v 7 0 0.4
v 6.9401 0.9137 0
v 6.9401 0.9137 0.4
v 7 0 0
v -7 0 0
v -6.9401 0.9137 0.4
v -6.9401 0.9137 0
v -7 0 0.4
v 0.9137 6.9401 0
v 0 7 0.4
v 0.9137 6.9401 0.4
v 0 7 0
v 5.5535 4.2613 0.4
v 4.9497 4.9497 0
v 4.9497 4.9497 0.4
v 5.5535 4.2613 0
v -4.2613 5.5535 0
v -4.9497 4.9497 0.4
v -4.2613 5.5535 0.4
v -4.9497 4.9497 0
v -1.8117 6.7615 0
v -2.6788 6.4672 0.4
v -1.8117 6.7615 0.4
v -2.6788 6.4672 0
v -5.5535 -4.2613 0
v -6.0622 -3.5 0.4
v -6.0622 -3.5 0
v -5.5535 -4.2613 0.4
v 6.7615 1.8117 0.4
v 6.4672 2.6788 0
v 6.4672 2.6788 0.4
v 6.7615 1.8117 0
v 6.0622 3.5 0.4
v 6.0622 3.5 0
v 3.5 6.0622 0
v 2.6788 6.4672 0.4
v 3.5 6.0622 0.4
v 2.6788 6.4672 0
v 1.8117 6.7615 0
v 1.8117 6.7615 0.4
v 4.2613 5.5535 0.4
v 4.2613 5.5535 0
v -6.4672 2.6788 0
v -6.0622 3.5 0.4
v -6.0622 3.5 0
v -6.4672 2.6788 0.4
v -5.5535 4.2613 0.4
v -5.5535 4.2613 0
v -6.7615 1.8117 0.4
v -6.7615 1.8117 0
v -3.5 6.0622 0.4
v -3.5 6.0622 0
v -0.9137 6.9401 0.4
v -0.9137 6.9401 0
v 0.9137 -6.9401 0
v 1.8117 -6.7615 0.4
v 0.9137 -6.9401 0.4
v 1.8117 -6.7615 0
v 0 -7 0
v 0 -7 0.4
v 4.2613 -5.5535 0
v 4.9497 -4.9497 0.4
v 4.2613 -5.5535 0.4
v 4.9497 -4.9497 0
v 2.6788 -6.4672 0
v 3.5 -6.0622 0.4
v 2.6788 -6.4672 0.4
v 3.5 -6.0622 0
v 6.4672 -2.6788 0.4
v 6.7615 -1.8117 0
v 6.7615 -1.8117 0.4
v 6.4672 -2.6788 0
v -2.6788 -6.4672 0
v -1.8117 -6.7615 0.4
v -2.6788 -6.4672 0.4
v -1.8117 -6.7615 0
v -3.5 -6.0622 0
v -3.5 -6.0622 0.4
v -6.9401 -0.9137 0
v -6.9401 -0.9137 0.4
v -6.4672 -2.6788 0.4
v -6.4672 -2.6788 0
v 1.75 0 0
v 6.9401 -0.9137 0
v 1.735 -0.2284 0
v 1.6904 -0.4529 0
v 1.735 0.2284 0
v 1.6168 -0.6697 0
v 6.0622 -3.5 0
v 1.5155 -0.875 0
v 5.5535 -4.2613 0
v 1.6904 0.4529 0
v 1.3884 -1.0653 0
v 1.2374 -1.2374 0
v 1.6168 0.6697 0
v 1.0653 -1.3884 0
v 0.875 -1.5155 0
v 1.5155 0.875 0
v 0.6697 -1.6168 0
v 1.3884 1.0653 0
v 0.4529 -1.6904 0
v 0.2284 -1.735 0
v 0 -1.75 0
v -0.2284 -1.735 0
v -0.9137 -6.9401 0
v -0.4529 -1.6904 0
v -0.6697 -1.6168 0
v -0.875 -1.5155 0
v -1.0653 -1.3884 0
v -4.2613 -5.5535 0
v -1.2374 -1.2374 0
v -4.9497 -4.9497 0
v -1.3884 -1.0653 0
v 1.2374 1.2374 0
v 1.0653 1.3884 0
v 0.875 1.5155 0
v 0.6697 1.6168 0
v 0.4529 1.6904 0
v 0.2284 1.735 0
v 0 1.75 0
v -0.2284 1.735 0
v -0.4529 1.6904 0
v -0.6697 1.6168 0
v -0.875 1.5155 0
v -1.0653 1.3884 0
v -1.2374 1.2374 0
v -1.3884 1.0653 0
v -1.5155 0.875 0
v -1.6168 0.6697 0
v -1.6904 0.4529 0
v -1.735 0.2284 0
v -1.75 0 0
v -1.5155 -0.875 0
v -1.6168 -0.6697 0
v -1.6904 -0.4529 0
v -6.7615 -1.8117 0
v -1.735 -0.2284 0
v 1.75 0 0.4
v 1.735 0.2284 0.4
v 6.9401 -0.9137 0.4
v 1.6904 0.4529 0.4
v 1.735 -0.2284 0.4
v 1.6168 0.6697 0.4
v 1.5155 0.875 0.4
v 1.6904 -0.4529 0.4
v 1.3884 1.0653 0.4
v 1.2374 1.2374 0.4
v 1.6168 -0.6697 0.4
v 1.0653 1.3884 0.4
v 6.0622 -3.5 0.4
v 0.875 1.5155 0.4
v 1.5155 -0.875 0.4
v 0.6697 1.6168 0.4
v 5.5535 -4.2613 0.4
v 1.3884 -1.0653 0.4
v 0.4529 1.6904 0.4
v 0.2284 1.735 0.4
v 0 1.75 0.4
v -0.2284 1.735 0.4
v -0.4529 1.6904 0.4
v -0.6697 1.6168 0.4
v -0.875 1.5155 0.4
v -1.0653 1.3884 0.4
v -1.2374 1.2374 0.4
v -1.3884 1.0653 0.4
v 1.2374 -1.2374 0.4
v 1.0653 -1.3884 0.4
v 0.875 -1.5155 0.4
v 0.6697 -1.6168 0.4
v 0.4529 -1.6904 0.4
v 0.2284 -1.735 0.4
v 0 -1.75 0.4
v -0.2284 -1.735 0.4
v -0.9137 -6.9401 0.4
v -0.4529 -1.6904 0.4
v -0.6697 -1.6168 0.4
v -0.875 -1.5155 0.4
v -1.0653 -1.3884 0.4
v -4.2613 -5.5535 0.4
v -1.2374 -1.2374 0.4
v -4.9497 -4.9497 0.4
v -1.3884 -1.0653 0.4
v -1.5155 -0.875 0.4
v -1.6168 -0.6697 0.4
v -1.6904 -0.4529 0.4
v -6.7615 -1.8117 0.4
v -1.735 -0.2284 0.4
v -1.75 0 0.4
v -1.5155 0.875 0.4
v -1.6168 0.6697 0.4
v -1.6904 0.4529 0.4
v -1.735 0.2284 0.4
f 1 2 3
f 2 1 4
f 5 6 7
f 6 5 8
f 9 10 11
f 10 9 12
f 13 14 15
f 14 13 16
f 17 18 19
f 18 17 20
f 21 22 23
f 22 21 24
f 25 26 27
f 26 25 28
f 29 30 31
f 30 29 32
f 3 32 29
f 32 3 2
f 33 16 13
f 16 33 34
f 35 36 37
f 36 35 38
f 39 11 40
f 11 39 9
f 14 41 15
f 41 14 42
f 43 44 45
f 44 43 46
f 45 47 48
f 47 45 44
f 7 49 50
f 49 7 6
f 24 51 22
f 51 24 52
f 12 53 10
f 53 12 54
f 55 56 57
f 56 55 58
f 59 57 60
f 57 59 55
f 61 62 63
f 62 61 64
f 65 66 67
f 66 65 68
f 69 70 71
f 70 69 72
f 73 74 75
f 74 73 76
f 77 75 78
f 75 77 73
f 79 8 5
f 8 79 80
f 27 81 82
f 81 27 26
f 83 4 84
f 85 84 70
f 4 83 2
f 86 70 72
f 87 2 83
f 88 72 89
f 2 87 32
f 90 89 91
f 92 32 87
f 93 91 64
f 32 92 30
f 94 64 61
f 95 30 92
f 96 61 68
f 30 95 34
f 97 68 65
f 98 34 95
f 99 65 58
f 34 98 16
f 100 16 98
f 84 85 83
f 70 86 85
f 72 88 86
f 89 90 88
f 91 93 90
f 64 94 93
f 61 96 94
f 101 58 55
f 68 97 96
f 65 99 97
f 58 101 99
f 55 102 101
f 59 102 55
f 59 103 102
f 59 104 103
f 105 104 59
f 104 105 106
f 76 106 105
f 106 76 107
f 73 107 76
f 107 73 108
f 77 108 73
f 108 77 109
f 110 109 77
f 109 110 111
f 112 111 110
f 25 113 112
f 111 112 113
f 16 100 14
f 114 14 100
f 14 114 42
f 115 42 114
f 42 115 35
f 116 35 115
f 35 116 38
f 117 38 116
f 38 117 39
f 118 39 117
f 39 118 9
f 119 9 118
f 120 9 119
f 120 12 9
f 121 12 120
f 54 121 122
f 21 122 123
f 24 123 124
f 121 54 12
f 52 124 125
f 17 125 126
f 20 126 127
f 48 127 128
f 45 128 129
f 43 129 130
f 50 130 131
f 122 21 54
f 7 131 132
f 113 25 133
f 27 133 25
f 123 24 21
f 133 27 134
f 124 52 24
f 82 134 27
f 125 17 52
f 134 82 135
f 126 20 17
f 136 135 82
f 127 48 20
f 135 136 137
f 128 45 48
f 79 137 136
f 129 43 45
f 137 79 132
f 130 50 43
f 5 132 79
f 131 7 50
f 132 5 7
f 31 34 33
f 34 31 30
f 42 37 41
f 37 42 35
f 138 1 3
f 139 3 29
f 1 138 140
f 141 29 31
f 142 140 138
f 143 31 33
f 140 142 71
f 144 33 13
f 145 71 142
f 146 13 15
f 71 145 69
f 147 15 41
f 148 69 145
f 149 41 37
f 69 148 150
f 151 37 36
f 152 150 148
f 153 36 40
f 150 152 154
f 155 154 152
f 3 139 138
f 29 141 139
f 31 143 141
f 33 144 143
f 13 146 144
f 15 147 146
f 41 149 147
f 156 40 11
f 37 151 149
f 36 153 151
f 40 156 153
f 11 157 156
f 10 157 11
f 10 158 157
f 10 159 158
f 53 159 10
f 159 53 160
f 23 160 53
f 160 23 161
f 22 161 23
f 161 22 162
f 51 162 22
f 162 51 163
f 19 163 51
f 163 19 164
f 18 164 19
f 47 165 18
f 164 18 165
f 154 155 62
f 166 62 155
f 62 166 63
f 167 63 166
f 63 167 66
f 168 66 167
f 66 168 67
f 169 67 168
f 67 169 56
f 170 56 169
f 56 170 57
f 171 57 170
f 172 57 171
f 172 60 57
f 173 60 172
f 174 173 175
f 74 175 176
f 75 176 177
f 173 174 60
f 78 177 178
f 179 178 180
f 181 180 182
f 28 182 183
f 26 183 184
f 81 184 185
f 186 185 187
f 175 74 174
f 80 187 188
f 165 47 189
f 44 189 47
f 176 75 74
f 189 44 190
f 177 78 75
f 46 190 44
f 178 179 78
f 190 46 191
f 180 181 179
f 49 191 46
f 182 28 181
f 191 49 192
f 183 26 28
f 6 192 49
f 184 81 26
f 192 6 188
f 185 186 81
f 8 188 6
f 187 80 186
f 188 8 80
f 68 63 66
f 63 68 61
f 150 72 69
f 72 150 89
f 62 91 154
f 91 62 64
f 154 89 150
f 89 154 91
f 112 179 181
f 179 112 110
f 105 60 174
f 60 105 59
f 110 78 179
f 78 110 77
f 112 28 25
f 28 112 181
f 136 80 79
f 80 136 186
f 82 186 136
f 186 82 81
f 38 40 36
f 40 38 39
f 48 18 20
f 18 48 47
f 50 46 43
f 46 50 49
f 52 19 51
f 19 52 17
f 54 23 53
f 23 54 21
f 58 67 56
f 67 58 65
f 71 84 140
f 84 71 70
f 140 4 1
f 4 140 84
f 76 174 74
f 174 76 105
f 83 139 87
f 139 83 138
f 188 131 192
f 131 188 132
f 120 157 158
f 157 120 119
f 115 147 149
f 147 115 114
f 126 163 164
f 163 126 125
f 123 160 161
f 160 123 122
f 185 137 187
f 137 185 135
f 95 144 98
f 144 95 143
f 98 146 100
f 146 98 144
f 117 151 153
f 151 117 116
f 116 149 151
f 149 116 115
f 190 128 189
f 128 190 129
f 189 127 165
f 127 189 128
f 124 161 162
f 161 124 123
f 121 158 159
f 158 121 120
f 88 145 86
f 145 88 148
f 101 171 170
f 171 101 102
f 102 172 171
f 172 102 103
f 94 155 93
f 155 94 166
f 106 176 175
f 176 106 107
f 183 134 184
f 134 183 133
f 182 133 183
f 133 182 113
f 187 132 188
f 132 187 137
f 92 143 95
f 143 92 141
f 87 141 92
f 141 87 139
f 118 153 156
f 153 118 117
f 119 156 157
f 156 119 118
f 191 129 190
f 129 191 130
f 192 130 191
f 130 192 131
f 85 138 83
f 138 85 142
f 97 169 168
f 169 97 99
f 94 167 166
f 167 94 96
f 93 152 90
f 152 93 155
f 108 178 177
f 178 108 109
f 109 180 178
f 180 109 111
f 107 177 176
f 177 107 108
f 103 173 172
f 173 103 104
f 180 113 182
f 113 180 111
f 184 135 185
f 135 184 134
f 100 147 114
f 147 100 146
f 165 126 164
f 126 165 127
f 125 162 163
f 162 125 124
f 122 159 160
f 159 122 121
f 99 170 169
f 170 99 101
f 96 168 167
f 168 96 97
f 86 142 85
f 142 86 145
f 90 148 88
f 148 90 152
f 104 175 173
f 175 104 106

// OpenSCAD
// Gen-EB — POST SHIM washer (2026-11-02): 0.4 mm levelling shim under the stator at a post (stack as needed). Print x12.
include <parameters.scad>;
$fn = 48;
difference() {
    cylinder(d=14, h=post_shim_t);
    translate([0, 0, -0.1]) cylinder(d=m3_clear, h=post_shim_t + 0.2);
}
